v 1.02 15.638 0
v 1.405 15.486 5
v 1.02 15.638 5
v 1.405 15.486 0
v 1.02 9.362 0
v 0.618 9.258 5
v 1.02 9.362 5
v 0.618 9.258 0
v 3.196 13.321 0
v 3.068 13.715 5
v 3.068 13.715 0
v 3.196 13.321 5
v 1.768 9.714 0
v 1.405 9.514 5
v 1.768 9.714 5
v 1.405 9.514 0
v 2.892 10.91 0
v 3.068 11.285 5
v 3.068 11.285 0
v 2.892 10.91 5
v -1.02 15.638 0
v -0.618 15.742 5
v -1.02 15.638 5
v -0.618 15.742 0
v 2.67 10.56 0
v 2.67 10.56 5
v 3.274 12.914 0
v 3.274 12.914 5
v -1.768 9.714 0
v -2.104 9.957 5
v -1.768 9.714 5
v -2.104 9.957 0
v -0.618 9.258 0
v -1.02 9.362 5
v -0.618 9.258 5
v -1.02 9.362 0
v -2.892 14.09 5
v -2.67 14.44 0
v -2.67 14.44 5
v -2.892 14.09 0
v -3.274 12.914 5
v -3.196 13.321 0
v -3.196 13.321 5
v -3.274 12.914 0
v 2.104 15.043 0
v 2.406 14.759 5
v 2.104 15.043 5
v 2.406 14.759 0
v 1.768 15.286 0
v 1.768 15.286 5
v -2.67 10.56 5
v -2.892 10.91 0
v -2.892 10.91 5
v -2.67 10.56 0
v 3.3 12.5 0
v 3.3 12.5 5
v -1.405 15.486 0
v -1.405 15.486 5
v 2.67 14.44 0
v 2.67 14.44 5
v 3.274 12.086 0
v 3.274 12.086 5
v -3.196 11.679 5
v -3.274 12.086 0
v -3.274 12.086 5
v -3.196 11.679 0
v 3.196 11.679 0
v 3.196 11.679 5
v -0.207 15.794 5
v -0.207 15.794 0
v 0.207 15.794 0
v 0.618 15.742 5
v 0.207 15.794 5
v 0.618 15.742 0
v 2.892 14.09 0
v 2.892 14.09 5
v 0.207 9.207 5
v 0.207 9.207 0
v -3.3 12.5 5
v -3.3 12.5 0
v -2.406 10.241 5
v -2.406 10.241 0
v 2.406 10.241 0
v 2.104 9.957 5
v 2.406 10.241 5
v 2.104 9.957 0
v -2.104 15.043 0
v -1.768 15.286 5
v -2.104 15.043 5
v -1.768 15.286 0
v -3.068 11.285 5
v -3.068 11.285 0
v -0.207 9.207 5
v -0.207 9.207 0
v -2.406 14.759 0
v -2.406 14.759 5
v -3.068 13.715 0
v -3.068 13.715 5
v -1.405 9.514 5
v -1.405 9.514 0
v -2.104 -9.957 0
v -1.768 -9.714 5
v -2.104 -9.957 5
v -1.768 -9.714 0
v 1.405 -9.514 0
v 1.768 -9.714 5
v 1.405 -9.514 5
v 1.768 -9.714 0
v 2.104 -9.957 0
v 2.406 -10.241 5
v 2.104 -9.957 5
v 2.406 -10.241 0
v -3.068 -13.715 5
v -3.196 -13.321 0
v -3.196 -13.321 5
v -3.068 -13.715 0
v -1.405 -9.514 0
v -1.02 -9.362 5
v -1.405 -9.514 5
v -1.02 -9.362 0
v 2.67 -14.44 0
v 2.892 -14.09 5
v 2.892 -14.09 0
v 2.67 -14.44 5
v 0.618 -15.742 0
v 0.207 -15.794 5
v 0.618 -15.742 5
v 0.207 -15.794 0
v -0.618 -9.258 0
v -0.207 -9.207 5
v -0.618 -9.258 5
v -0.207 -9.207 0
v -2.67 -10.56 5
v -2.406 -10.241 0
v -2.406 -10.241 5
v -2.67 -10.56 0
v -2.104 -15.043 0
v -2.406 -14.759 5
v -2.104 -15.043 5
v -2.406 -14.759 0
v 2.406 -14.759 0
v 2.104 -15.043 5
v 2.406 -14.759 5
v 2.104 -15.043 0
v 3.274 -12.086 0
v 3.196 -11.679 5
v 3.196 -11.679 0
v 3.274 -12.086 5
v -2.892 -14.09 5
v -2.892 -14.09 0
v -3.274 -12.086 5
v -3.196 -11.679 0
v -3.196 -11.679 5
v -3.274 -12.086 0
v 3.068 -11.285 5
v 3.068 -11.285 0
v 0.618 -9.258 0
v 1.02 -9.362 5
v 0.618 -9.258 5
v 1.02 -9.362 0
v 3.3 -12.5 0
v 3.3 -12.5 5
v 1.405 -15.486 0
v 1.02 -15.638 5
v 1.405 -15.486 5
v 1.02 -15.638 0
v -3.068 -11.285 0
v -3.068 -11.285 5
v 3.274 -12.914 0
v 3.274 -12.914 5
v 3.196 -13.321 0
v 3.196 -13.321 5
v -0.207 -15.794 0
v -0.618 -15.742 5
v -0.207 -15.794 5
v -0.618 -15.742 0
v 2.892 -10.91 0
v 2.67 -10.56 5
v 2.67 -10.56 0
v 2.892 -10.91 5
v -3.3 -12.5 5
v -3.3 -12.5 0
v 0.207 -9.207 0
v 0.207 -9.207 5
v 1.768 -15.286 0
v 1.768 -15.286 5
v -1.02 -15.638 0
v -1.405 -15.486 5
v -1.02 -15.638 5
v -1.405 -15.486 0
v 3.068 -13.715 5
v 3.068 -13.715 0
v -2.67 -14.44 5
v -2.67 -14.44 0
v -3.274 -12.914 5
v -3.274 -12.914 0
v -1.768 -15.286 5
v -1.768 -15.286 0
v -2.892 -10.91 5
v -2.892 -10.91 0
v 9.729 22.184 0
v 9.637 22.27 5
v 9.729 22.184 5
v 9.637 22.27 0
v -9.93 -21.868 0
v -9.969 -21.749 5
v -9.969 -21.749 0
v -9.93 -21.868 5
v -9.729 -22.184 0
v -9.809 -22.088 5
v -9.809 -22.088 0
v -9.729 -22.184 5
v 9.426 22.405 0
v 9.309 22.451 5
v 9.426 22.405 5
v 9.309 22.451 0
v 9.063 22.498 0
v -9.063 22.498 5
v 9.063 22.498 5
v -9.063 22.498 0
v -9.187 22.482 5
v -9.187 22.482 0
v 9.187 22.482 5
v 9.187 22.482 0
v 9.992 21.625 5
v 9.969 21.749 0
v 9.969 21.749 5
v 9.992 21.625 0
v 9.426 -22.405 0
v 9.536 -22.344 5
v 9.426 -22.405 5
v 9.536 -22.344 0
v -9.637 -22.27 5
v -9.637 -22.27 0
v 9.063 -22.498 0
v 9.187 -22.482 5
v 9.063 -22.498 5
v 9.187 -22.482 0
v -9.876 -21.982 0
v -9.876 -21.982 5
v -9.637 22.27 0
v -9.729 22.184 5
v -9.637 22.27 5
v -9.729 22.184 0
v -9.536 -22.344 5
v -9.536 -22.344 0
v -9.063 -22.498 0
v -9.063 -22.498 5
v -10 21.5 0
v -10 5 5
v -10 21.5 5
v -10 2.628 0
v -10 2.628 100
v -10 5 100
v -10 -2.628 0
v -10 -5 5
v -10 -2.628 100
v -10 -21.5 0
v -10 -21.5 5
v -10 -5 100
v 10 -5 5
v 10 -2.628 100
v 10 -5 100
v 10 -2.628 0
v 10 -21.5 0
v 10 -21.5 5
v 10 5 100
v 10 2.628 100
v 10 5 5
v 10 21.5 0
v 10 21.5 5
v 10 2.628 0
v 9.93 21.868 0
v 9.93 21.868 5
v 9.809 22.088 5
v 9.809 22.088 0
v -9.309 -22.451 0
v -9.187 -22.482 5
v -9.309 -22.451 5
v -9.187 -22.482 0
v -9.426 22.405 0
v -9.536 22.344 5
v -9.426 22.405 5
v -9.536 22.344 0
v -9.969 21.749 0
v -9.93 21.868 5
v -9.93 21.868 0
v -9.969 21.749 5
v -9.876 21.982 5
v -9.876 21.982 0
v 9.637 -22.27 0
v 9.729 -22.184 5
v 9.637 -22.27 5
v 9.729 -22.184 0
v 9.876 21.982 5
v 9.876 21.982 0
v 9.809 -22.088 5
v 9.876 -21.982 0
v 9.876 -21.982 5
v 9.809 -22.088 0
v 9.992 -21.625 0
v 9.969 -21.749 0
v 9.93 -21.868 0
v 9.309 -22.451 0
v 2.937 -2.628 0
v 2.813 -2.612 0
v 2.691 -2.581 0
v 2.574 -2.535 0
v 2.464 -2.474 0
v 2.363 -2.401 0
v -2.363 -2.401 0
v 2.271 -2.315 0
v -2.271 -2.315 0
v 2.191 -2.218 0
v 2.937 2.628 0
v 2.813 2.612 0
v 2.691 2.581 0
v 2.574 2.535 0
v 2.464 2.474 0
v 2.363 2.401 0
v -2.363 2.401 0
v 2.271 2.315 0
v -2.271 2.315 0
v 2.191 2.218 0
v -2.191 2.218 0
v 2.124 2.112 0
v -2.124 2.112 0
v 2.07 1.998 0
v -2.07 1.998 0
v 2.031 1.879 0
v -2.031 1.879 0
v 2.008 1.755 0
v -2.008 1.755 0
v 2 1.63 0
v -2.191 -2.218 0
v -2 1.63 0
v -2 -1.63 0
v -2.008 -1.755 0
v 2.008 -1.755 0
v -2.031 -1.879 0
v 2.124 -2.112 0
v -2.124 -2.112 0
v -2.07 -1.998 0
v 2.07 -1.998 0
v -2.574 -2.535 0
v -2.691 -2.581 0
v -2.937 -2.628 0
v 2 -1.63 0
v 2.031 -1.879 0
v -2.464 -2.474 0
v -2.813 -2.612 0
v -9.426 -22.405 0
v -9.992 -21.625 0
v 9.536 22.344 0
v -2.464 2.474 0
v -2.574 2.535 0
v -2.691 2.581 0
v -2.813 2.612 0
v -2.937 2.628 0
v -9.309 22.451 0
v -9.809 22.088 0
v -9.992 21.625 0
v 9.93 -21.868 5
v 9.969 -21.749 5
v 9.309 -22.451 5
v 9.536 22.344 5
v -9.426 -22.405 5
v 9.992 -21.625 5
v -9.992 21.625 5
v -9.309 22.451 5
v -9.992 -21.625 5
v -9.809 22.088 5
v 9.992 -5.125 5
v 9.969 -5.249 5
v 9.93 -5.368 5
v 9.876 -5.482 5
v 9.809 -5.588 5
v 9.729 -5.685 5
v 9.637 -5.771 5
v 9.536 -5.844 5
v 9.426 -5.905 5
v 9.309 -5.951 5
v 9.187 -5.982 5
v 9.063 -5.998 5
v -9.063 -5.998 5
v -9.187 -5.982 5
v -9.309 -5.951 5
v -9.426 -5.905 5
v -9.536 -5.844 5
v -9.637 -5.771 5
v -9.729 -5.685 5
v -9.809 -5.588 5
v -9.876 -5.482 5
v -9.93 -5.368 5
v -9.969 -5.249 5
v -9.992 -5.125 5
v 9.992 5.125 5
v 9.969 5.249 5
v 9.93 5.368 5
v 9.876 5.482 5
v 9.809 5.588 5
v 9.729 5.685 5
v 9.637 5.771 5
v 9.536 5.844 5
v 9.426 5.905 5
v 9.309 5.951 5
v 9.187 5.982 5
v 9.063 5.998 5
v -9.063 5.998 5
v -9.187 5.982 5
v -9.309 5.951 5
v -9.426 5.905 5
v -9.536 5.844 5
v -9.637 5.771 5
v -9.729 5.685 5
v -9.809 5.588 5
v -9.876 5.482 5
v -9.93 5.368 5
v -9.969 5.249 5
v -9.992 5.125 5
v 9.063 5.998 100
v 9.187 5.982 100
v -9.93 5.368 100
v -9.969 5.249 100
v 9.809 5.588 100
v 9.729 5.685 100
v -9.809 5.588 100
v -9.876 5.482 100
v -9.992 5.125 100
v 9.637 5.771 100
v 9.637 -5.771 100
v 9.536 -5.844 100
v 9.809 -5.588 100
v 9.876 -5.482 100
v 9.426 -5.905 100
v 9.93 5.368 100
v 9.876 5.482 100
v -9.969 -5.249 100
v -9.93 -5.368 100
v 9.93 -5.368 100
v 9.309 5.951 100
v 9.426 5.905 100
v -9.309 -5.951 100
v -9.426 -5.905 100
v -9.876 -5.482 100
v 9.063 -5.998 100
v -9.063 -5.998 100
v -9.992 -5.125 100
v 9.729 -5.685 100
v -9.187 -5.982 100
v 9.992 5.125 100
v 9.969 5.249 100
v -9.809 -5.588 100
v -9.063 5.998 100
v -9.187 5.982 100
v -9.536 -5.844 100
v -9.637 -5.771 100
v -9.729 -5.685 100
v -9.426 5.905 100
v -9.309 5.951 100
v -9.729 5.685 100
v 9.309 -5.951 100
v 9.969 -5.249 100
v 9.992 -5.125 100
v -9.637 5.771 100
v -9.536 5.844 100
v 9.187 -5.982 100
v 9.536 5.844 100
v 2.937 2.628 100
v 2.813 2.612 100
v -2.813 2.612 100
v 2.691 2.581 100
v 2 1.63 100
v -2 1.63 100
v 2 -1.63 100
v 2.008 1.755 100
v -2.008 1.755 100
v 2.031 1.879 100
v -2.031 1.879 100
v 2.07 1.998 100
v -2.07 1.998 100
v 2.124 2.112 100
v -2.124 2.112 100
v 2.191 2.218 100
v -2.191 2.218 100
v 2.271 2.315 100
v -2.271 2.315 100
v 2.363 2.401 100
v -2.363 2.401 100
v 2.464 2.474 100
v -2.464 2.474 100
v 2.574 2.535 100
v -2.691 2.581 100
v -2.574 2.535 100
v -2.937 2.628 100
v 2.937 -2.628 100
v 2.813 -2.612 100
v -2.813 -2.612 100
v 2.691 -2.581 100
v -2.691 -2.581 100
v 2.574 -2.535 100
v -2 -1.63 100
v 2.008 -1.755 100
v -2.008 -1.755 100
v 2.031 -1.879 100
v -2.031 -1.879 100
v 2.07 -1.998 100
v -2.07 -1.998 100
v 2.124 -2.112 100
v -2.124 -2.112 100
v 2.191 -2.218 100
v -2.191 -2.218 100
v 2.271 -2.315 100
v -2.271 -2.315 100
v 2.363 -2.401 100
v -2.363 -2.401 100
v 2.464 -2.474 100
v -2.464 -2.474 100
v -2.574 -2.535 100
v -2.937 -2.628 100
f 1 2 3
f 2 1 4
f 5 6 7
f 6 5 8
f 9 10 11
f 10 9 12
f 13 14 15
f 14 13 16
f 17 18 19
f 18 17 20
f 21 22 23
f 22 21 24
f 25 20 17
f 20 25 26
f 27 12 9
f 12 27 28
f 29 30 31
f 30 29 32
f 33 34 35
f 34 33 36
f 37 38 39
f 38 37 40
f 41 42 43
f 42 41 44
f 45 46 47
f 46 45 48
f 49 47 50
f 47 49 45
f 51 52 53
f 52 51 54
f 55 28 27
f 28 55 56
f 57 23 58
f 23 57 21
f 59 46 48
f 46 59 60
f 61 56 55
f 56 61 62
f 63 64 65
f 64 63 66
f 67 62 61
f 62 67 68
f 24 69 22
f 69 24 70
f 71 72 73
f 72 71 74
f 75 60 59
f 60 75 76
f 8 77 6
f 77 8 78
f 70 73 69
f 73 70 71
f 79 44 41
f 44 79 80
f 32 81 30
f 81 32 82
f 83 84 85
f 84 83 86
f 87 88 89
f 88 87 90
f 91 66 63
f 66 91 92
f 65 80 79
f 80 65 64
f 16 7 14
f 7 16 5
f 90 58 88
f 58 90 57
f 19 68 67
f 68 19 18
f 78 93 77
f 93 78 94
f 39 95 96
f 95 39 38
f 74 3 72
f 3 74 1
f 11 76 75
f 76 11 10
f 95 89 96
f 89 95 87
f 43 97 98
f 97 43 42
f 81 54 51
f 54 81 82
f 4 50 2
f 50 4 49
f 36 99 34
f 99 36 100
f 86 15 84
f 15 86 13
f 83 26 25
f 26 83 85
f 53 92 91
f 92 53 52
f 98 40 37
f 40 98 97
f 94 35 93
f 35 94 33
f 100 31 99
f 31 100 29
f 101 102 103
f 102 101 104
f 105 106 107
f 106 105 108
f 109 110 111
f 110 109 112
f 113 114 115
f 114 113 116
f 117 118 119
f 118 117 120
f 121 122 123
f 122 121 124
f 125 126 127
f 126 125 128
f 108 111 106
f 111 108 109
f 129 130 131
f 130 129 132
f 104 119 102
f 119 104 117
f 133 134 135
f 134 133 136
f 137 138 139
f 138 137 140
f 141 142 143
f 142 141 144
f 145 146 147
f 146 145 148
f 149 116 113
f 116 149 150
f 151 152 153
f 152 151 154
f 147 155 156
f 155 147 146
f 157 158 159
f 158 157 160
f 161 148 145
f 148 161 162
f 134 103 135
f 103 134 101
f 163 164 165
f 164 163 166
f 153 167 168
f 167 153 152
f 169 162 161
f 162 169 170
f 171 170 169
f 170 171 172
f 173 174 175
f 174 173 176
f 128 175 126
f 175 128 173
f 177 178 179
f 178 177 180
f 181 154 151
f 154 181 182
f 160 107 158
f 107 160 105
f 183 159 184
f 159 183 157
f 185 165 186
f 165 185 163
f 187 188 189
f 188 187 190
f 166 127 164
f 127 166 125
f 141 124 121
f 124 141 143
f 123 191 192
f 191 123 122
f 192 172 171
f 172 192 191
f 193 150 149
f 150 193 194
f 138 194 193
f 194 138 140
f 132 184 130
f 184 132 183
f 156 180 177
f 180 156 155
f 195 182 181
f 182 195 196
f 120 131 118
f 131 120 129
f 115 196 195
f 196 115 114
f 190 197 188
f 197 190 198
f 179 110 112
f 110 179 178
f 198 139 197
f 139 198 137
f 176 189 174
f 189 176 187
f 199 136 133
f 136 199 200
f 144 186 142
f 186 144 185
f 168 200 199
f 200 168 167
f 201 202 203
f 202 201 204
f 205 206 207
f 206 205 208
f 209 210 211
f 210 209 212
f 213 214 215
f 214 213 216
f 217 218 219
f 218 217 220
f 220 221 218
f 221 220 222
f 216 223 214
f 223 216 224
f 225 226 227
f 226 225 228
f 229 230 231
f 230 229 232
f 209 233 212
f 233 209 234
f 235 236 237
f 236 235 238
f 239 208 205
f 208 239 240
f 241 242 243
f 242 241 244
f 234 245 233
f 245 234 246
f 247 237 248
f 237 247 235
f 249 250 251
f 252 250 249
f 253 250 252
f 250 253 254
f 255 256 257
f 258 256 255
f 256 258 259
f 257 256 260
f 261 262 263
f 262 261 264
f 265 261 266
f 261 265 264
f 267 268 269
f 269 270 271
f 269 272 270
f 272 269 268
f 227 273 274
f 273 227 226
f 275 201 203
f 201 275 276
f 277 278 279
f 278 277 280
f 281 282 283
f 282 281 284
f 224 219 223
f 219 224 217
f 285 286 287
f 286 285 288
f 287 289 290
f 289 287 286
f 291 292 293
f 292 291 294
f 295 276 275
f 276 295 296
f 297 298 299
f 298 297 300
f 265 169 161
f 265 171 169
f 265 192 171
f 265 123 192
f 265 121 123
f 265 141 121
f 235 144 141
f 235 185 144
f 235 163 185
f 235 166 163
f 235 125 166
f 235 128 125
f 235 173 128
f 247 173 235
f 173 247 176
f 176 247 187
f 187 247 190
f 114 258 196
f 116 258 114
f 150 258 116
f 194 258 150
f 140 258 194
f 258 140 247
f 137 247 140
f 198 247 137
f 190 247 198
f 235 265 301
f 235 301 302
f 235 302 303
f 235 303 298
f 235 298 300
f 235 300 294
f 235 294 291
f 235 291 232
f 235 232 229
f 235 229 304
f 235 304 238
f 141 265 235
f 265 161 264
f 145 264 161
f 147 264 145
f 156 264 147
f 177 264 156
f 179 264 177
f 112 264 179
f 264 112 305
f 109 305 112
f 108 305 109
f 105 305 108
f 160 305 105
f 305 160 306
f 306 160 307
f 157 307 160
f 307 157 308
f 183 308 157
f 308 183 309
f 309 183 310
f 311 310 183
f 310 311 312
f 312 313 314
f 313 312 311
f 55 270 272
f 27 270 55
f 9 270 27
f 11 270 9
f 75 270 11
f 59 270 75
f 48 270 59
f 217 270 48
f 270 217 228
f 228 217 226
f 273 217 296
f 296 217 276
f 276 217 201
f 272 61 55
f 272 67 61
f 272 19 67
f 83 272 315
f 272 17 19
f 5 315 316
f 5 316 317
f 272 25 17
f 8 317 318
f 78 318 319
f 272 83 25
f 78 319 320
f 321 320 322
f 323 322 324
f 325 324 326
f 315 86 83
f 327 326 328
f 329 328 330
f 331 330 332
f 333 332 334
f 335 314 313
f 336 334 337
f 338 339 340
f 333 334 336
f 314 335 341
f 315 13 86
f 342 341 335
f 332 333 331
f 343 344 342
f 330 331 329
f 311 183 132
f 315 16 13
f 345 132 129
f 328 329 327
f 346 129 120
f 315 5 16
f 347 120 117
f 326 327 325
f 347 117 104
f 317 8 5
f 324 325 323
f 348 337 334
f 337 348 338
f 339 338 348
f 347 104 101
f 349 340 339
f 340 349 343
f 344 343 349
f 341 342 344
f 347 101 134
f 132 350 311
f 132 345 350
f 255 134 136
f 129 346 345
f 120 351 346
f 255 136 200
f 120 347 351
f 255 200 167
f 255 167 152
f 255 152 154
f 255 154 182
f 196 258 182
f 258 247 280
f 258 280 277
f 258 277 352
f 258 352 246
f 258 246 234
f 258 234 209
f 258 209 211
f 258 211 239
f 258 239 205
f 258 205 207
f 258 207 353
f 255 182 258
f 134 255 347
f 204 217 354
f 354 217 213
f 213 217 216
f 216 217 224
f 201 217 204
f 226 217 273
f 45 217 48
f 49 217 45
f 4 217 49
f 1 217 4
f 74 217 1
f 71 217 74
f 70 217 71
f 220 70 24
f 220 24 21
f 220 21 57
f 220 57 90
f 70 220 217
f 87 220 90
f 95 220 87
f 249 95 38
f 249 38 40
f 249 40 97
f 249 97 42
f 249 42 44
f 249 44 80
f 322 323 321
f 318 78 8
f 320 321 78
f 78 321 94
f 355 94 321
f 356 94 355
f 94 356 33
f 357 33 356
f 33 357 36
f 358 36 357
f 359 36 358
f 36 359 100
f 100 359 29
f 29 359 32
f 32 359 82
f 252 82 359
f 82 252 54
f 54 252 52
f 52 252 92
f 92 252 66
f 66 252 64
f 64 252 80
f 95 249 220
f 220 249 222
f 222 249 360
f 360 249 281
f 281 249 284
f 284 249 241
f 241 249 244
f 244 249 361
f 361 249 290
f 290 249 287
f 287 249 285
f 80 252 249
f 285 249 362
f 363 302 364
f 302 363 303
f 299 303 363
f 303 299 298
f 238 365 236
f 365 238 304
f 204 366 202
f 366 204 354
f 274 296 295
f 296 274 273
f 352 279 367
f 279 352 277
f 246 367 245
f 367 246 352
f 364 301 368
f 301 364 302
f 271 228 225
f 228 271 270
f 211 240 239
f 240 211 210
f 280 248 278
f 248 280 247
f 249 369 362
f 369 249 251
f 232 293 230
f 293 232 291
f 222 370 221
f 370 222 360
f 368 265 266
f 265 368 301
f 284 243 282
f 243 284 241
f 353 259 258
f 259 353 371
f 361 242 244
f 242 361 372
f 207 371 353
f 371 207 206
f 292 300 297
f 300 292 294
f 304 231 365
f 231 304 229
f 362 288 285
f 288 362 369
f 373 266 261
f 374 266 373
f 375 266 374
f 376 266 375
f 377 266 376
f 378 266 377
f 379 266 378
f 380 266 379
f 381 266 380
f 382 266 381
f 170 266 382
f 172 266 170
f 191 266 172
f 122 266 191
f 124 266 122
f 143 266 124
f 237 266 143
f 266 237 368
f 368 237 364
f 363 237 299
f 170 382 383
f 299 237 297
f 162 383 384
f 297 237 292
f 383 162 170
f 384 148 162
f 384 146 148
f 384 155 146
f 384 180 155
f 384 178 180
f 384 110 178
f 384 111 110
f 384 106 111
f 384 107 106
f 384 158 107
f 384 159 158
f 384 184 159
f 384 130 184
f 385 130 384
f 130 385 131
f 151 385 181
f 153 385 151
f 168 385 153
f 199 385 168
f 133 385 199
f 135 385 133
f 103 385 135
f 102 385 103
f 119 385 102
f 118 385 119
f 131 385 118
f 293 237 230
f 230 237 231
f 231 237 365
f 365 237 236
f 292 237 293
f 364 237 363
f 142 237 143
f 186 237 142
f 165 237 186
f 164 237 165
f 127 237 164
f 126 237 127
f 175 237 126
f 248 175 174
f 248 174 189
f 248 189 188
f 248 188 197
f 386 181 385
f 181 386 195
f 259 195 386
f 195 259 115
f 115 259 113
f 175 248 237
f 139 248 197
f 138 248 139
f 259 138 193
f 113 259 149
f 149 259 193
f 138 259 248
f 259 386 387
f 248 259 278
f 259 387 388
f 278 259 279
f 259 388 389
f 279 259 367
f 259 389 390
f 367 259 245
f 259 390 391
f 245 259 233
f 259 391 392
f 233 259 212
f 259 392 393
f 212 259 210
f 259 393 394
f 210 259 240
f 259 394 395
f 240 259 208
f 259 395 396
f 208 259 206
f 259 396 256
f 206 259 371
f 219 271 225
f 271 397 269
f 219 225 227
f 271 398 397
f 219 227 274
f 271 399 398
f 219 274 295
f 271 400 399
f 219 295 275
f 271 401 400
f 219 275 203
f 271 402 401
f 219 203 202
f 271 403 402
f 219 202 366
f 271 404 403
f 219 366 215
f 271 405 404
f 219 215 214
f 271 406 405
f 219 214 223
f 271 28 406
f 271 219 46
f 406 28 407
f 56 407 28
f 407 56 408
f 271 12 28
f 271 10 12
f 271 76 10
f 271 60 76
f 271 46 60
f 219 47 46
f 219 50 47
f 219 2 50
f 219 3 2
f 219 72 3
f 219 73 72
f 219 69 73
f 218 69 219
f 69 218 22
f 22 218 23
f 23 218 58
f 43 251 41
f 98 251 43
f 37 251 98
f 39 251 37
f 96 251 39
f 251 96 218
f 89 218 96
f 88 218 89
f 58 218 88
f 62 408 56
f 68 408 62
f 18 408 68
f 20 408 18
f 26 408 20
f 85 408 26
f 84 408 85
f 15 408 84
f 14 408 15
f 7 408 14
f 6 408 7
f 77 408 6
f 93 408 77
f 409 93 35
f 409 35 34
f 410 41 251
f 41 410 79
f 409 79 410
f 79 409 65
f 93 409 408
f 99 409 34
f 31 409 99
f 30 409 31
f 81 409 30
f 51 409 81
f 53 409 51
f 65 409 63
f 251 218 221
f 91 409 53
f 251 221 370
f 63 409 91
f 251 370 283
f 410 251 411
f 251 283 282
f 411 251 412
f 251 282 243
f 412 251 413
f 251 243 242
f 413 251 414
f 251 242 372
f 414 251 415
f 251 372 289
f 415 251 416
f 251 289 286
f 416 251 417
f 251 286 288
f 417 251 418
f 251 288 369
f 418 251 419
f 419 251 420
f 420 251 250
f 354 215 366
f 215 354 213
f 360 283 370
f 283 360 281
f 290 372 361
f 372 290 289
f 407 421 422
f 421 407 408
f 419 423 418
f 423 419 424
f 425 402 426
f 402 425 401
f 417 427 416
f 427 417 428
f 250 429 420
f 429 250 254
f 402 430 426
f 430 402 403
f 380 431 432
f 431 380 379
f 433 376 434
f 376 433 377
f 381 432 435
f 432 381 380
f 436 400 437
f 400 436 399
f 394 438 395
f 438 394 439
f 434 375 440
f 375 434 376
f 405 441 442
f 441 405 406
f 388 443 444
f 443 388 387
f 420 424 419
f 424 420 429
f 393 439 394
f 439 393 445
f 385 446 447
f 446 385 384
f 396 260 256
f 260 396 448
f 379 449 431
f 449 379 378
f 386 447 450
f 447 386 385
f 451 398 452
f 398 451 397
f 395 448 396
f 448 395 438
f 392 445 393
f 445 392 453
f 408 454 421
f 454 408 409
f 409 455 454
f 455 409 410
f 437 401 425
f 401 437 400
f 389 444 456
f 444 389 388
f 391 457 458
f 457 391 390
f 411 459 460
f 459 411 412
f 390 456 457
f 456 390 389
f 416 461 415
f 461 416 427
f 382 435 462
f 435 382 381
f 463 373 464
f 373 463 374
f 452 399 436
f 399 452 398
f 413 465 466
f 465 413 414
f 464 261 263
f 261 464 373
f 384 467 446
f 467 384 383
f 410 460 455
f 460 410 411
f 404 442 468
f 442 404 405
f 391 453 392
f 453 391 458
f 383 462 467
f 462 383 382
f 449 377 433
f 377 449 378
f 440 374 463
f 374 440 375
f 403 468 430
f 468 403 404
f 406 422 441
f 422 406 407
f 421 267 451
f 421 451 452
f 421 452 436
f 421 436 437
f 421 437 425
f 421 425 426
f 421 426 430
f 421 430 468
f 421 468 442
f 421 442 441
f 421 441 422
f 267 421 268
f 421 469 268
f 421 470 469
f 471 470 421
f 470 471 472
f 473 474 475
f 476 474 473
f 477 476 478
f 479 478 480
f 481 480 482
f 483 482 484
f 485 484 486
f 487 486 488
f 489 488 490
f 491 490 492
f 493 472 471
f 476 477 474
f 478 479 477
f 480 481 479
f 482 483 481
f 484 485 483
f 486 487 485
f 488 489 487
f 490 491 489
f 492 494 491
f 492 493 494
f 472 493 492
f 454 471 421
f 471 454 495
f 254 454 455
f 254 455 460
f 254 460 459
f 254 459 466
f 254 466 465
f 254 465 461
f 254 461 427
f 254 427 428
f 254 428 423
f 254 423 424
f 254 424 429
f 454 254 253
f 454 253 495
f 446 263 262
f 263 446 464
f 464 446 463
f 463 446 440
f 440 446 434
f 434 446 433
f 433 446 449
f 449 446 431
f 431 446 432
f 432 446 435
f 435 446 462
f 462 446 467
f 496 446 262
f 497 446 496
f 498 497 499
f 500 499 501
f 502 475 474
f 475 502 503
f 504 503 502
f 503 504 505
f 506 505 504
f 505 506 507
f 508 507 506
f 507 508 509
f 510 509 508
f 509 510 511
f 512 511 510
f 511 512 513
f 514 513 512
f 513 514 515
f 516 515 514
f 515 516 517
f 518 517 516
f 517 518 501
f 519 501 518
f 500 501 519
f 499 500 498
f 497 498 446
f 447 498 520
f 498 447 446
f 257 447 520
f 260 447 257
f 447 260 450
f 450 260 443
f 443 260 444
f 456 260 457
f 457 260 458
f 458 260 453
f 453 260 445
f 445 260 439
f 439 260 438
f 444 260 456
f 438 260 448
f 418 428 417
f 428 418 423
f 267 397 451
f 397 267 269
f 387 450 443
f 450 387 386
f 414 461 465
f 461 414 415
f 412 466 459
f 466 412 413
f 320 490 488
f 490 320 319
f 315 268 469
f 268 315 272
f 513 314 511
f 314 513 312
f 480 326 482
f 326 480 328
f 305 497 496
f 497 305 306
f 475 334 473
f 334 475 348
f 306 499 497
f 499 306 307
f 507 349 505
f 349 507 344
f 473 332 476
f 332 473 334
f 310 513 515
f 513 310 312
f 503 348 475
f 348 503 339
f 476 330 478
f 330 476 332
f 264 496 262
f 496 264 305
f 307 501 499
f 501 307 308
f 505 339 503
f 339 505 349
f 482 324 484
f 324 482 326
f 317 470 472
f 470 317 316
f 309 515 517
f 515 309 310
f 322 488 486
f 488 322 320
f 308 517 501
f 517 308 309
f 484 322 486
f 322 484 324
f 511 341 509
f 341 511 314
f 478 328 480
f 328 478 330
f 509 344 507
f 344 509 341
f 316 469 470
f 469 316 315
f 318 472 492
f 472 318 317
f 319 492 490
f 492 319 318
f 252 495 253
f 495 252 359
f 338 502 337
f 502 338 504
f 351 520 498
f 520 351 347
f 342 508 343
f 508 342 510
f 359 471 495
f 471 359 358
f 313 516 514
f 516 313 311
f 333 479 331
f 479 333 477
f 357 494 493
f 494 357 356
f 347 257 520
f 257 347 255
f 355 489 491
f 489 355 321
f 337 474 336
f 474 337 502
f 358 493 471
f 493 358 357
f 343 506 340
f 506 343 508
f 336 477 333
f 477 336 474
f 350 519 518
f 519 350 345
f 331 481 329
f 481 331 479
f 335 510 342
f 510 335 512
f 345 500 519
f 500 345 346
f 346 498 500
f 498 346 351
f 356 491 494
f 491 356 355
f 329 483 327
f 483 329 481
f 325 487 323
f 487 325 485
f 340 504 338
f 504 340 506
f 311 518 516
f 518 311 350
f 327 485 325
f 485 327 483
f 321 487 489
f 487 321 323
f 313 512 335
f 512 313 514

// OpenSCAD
module roundedBox(w=10, h=10, d=10, r=2){
    translate([-(w-2*r)/2,-(h-2*r)/2,0]) {
        minkowski(){
            cylinder(r,r,r);
            cube([w-2*r, h-2*r, d-r]);
        }
    }
}

module baseplate(baseWidth=20, holeSpacing=6, baseThickness=5, roundRadius=2){
    difference(){
        roundedBox(baseWidth,holeSpacing+baseWidth,baseThickness,roundRadius);
        union(){
            translate([0,holeSpacing/2,-2]) cylinder(baseThickness*2,clearanceHole/2,clearanceHole/2);
            translate([0,-holeSpacing/2,-2]) cylinder(baseThickness*2,clearanceHole/2,clearanceHole/2);
        }
    }
}



$fn = 50;
// ----- Parameters (all in mm) -----
holeSpacing = 25; // standard metric Thorlabs optical table
clearanceHole = 6.6; // for M6 screws
baseWidth = 20;
baseThickness = 5;
pilarThickness = 12;
pilarHeight = 100;
roundRadius = 1; // smoothes the angles
boardThickness = 4.76; // thickness of the cardboard/plastic board to be used
slotDepth = 8;

difference(){
    union(){
        baseplate(baseWidth, holeSpacing, baseThickness, roundRadius);
        roundedBox(baseWidth,pilarThickness,pilarHeight, roundRadius);
        }
    union(){
        translate([baseWidth/2,0,-2]) roundedBox(2*slotDepth, boardThickness+0.5,pilarHeight+4,roundRadius);
        translate([-baseWidth/2,0,-2]) roundedBox(2*slotDepth, boardThickness+0.5,pilarHeight+4,roundRadius);
        }
}
